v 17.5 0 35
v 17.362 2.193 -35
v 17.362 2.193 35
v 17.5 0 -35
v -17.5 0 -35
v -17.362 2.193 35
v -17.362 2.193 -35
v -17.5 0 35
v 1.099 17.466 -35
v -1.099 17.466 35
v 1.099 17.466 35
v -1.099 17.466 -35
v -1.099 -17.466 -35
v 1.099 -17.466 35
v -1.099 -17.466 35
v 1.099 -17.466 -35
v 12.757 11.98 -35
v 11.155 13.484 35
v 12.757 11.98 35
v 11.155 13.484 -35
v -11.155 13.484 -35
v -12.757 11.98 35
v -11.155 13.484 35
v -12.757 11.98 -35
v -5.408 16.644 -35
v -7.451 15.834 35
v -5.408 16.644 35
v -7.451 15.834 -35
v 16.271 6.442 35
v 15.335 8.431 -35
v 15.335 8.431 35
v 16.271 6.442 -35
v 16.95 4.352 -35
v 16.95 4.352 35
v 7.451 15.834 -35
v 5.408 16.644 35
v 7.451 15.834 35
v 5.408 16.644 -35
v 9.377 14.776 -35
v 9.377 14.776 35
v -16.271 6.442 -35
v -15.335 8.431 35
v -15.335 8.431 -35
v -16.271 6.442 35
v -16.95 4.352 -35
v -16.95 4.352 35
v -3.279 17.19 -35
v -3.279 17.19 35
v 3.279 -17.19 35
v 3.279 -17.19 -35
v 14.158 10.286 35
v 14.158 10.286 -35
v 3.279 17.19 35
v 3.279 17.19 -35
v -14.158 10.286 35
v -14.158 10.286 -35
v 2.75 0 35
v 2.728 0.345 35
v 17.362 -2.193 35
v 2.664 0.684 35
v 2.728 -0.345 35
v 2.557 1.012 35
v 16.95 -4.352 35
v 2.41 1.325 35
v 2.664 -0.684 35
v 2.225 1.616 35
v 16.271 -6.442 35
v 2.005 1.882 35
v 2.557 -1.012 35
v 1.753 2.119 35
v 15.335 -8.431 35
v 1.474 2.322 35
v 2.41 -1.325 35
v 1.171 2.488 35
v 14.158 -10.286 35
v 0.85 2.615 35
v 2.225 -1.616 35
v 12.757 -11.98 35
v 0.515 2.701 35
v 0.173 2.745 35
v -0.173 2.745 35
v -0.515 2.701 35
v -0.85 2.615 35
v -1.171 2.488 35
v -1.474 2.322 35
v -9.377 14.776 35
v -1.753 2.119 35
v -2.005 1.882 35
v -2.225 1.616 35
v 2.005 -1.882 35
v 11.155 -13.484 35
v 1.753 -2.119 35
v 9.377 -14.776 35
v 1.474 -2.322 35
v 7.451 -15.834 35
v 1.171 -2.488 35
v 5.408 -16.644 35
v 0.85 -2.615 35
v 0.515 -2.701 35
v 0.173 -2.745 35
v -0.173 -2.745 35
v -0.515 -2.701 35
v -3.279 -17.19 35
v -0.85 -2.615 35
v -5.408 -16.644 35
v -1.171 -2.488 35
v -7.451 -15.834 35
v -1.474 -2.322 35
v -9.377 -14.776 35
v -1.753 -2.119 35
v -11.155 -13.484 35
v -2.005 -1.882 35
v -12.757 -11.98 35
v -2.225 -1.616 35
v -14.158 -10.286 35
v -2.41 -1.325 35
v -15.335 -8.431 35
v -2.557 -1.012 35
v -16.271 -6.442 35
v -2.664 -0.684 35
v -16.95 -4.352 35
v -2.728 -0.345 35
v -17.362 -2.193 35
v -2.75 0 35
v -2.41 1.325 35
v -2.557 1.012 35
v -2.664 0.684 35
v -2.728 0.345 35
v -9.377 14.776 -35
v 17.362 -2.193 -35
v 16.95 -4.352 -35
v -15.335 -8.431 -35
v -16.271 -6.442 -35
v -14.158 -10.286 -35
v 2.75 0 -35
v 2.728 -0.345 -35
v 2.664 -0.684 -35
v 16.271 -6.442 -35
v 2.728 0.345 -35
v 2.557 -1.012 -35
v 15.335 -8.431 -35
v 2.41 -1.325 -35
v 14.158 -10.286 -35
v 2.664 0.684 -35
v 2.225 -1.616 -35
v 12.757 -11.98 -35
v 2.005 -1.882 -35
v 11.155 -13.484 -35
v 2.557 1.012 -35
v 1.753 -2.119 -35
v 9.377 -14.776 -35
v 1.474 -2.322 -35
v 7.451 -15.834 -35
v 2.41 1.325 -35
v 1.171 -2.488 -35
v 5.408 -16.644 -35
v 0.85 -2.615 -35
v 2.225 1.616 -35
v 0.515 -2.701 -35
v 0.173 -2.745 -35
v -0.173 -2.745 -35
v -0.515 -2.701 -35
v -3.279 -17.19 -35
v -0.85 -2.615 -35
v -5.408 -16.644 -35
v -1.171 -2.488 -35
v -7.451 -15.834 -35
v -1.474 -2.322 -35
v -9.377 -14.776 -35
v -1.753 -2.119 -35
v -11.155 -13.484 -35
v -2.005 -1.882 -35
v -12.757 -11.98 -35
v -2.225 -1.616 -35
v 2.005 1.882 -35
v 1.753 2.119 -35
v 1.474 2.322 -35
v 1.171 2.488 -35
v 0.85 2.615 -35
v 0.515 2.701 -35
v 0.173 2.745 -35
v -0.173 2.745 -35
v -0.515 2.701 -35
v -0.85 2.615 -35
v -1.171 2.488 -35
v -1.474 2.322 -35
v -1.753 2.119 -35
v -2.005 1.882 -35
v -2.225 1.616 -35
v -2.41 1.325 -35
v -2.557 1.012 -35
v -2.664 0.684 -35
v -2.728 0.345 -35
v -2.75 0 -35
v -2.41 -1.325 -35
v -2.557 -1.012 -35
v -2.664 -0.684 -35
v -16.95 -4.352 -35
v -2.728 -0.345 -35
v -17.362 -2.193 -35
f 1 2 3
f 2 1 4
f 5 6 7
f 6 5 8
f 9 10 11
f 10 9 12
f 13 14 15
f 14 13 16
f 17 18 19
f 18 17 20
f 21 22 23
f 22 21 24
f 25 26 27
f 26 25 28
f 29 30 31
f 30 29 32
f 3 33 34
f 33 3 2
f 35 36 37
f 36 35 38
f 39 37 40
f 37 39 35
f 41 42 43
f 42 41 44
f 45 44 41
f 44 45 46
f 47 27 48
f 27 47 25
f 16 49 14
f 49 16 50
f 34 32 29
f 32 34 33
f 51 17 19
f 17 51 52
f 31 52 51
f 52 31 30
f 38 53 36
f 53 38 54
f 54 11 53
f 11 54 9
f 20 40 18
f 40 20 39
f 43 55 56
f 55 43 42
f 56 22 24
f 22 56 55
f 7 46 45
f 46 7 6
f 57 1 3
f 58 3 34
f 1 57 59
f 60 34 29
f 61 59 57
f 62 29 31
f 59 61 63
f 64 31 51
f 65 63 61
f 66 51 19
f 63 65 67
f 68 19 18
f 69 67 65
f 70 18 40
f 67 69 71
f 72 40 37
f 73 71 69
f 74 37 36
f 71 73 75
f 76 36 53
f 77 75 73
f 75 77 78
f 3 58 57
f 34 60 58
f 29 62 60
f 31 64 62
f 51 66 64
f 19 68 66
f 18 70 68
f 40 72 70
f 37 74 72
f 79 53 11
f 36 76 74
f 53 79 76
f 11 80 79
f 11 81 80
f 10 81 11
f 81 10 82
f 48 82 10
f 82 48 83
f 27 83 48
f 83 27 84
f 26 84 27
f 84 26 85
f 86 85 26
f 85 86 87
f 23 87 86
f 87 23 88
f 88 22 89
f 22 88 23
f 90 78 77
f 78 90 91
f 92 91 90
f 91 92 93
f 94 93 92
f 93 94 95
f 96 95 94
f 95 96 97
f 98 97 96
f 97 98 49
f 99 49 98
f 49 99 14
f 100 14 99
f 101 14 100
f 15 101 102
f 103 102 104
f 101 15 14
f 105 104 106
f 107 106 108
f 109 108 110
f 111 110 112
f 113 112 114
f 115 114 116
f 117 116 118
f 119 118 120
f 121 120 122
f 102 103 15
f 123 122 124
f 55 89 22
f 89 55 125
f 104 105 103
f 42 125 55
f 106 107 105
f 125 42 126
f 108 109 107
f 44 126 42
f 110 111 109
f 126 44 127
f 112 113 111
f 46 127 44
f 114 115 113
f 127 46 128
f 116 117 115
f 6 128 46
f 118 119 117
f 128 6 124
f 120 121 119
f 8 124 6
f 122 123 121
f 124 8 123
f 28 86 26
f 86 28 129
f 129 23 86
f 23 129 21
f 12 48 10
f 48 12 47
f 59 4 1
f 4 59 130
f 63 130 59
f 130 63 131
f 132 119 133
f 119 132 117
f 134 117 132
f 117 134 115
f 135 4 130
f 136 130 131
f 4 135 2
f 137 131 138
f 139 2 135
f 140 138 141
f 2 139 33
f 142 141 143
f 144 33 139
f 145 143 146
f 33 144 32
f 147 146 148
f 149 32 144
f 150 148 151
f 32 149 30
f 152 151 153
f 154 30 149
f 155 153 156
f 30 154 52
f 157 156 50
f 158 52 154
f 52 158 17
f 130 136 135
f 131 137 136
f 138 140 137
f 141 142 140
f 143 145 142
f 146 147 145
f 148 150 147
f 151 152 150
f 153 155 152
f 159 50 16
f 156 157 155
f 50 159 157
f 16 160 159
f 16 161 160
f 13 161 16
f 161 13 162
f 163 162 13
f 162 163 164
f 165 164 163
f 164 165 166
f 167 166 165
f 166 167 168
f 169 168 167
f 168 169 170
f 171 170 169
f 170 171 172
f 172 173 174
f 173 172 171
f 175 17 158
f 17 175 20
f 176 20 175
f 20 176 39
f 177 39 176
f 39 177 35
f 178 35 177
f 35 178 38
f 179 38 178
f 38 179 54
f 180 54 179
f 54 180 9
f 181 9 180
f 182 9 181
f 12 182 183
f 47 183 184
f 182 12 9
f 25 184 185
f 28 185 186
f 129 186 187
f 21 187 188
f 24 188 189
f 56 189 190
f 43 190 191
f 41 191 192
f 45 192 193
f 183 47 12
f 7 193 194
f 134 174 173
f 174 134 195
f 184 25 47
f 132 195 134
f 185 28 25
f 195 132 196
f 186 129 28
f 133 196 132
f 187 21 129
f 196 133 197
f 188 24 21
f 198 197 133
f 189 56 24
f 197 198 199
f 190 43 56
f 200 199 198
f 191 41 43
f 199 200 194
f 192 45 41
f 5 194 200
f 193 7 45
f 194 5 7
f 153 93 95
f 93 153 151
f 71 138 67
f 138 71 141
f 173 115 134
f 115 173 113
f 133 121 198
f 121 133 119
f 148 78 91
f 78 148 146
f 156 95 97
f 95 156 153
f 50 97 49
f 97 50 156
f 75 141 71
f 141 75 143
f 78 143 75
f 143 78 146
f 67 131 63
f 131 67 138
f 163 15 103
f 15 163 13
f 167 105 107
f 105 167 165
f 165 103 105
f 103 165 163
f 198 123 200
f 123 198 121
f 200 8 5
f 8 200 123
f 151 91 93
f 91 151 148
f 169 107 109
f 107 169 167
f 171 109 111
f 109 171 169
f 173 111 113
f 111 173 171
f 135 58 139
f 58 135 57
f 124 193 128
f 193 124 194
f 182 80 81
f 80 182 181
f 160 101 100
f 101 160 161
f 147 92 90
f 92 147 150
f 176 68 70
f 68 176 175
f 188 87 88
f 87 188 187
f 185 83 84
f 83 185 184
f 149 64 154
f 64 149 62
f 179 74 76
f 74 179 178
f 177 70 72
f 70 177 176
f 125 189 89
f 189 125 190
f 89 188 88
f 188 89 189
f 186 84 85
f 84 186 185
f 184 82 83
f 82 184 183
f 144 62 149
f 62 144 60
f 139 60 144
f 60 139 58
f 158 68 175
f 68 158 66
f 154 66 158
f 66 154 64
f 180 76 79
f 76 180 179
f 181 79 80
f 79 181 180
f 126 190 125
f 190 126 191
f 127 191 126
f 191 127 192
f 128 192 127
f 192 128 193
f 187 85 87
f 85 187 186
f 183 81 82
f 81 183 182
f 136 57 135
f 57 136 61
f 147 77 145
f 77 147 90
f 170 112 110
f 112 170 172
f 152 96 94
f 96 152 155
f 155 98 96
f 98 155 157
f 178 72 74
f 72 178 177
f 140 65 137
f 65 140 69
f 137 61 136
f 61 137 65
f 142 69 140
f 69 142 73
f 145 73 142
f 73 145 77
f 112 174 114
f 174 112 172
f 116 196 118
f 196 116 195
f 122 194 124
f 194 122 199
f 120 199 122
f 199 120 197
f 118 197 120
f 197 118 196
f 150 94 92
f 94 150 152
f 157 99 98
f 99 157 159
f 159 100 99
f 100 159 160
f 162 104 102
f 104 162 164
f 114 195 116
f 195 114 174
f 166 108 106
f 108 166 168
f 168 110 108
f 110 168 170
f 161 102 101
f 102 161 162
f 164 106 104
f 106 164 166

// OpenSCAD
$fn = 50;


difference() {
	union() {
		translate(v = [0, 0, -35.0000000000]) {
			cylinder(h = 70, r = 17.5000000000);
		}
	}
	union() {
		translate(v = [0, 0, -100.0000000000]) {
			cylinder(h = 200, r = 2.7500000000);
		}
	}
}
